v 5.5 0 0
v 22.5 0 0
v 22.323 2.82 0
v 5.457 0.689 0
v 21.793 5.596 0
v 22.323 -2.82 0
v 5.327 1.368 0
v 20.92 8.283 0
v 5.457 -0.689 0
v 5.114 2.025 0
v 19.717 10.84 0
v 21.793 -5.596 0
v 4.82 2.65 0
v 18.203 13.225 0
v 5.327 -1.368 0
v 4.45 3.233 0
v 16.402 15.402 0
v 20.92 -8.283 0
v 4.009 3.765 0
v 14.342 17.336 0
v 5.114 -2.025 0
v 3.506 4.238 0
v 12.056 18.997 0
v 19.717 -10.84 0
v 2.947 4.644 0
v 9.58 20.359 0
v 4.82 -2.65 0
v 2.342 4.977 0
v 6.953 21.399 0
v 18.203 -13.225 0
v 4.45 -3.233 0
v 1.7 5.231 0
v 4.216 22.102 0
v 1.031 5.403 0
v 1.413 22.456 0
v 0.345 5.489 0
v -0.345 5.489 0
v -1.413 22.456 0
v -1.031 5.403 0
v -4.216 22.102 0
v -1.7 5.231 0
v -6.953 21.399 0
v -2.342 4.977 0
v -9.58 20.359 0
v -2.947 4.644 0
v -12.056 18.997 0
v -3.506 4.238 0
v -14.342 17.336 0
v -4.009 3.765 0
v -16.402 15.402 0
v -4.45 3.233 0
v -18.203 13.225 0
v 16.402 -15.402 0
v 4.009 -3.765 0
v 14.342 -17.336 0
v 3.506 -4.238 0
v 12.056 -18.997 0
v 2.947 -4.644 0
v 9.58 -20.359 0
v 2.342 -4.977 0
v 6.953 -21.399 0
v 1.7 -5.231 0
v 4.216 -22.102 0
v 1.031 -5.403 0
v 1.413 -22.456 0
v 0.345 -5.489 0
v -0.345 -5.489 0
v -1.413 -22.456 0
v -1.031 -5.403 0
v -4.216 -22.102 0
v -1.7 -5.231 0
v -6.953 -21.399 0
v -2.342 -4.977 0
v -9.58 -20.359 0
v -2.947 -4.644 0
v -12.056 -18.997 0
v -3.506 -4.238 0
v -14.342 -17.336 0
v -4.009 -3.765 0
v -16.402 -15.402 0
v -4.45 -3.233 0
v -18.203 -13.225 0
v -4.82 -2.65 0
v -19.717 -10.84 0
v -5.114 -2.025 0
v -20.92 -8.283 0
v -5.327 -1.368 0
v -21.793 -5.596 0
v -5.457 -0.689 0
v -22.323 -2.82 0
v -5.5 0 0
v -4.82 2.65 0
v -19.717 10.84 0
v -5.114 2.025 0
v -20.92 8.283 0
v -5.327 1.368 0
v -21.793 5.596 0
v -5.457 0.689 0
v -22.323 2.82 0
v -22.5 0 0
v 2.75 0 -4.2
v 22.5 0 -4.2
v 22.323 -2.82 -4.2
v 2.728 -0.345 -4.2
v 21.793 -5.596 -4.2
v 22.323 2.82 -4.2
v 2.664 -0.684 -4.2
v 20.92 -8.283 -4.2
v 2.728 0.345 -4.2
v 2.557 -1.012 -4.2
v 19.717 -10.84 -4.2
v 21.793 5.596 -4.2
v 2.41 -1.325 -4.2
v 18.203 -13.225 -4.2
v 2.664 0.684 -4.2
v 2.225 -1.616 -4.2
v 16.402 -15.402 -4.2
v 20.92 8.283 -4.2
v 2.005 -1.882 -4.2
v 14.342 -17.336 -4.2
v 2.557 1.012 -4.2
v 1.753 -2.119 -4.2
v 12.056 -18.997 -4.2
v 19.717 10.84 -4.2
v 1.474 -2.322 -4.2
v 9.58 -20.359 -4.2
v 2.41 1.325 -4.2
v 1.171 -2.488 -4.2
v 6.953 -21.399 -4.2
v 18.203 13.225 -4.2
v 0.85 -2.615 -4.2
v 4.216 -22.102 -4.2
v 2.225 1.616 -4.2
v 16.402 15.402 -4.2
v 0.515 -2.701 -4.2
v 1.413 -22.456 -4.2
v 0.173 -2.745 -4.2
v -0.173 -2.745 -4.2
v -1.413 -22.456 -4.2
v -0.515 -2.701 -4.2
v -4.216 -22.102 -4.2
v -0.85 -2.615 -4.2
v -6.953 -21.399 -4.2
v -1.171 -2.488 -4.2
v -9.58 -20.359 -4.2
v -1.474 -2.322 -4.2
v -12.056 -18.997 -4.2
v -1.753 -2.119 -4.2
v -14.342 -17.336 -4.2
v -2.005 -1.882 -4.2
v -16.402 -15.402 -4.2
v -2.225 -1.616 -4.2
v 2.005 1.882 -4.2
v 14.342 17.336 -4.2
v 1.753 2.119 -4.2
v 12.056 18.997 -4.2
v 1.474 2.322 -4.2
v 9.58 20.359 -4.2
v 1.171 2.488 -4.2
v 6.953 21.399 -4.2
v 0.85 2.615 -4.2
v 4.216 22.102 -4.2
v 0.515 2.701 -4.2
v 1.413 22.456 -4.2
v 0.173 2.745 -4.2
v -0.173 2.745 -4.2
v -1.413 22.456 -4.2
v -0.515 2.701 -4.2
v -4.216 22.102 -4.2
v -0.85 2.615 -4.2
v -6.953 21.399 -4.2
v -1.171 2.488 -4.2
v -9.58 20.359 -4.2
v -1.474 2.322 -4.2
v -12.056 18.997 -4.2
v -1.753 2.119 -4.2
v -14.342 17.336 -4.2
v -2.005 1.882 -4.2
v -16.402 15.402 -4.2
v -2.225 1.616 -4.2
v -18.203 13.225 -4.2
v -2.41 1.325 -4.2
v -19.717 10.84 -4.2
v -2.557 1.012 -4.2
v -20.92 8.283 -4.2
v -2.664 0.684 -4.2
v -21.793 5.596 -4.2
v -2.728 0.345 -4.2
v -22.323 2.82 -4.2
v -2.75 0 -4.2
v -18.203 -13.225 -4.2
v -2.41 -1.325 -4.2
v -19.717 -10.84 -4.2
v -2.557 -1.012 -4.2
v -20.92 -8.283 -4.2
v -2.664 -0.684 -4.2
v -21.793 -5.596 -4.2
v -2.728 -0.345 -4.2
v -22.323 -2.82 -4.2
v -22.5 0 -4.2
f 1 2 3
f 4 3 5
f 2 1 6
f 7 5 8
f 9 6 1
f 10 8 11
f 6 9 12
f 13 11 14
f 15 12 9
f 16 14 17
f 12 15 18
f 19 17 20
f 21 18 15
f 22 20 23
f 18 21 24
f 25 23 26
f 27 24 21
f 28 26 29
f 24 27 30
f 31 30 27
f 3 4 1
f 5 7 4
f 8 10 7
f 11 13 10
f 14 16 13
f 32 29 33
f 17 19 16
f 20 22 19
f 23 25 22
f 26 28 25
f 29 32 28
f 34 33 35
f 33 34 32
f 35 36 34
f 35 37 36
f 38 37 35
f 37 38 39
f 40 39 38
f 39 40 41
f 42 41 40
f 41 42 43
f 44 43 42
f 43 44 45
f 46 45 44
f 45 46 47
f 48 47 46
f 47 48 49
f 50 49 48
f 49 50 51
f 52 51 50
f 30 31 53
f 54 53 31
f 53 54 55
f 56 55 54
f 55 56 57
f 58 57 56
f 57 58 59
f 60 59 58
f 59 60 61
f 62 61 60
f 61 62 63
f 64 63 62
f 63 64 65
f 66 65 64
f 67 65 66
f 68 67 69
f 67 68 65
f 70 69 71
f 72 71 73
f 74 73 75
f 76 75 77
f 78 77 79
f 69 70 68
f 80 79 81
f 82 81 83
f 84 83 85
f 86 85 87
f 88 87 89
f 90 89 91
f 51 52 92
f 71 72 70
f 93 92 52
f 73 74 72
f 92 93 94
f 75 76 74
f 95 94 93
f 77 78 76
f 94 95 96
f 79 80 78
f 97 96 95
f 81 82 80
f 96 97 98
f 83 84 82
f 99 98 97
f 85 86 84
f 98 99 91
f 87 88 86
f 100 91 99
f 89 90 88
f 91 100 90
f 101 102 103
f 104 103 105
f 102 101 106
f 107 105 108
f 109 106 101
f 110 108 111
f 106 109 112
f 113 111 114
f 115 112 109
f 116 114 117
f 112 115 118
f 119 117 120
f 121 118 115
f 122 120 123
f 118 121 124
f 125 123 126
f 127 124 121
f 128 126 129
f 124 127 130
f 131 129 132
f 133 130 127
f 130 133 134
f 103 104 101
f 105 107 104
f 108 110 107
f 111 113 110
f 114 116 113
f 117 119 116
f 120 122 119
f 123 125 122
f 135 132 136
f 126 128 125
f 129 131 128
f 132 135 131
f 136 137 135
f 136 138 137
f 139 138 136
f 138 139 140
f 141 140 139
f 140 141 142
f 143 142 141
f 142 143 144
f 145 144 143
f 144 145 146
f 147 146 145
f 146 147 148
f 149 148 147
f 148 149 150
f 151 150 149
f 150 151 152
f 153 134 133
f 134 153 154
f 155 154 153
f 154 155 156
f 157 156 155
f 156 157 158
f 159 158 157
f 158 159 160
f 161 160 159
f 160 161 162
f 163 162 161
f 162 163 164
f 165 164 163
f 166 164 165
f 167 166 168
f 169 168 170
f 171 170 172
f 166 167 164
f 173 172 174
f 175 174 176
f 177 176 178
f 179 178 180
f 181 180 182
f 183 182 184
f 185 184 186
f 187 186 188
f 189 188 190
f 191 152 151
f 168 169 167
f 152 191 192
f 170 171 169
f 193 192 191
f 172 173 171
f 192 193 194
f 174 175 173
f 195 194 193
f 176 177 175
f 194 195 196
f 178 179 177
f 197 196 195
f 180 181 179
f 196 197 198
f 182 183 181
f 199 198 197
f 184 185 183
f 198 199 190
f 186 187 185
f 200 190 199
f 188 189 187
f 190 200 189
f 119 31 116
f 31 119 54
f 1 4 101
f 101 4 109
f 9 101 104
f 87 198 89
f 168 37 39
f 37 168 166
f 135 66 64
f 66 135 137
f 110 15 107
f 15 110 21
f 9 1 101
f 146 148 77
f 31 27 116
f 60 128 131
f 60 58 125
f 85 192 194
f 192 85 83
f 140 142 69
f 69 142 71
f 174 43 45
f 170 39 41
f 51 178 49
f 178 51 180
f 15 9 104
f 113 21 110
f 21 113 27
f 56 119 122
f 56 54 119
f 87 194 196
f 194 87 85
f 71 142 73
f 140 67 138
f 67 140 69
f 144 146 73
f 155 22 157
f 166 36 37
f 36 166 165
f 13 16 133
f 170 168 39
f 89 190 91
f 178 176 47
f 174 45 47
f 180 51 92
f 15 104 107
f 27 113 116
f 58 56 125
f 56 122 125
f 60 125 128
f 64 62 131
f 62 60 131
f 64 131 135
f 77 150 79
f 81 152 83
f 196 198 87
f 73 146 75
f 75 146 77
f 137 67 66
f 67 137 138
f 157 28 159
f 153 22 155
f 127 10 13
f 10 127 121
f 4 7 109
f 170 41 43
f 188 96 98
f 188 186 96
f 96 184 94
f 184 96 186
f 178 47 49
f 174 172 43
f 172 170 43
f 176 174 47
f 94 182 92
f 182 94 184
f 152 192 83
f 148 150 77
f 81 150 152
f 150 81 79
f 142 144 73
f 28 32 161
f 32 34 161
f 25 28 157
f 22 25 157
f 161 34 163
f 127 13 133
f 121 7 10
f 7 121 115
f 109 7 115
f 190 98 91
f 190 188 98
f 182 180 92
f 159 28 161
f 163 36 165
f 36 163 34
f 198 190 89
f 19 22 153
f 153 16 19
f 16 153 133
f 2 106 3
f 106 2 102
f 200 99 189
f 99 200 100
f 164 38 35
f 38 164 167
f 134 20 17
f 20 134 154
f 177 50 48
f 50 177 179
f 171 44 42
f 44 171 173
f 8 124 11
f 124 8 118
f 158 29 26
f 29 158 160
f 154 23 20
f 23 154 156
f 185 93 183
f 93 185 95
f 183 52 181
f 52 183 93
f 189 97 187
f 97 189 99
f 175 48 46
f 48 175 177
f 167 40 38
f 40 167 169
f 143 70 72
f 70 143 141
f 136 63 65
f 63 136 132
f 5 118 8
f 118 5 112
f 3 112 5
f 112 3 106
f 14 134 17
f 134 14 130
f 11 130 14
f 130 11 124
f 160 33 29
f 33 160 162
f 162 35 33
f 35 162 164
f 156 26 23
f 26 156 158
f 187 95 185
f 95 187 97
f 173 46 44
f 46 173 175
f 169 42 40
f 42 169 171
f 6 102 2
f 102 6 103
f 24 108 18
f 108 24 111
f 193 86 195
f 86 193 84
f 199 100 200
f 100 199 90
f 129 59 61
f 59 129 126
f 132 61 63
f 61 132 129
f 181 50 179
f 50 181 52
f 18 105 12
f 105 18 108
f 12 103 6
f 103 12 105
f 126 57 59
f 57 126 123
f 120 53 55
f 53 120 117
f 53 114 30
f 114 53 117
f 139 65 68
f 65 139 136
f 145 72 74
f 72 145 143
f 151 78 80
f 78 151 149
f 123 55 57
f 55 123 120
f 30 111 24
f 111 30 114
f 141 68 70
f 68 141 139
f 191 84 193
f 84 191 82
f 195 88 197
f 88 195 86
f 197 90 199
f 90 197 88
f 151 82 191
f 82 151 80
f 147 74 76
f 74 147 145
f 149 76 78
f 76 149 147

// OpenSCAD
$fn = 50;


difference() {
	union() {
		translate(v = [0, 0, -4.2000000000]) {
			cylinder(h = 4.2000000000, r = 22.5000000000);
		}
	}
	union() {
		translate(v = [0, 0, 0]) {
			rotate(a = [0, 0, 0]) {
				difference() {
					union() {
						#translate(v = [0, 0, -4.2000000000]) {
							cylinder(h = 4.2000000000, r = 2.2500000000);
						}
						#translate(v = [0, 0, -4.2000000000]) {
							cylinder(h = 4.2000000000, r1 = 2.7500000000, r2 = 5.5000000000);
						}
						#translate(v = [0, 0, -4.2000000000]) {
							cylinder(h = 4.2000000000, r = 2.7500000000);
						}
						#translate(v = [0, 0, -4.2000000000]) {
							cylinder(h = 4.2000000000, r = 2.2500000000);
						}
					}
					union();
				}
			}
		}
	}
}
